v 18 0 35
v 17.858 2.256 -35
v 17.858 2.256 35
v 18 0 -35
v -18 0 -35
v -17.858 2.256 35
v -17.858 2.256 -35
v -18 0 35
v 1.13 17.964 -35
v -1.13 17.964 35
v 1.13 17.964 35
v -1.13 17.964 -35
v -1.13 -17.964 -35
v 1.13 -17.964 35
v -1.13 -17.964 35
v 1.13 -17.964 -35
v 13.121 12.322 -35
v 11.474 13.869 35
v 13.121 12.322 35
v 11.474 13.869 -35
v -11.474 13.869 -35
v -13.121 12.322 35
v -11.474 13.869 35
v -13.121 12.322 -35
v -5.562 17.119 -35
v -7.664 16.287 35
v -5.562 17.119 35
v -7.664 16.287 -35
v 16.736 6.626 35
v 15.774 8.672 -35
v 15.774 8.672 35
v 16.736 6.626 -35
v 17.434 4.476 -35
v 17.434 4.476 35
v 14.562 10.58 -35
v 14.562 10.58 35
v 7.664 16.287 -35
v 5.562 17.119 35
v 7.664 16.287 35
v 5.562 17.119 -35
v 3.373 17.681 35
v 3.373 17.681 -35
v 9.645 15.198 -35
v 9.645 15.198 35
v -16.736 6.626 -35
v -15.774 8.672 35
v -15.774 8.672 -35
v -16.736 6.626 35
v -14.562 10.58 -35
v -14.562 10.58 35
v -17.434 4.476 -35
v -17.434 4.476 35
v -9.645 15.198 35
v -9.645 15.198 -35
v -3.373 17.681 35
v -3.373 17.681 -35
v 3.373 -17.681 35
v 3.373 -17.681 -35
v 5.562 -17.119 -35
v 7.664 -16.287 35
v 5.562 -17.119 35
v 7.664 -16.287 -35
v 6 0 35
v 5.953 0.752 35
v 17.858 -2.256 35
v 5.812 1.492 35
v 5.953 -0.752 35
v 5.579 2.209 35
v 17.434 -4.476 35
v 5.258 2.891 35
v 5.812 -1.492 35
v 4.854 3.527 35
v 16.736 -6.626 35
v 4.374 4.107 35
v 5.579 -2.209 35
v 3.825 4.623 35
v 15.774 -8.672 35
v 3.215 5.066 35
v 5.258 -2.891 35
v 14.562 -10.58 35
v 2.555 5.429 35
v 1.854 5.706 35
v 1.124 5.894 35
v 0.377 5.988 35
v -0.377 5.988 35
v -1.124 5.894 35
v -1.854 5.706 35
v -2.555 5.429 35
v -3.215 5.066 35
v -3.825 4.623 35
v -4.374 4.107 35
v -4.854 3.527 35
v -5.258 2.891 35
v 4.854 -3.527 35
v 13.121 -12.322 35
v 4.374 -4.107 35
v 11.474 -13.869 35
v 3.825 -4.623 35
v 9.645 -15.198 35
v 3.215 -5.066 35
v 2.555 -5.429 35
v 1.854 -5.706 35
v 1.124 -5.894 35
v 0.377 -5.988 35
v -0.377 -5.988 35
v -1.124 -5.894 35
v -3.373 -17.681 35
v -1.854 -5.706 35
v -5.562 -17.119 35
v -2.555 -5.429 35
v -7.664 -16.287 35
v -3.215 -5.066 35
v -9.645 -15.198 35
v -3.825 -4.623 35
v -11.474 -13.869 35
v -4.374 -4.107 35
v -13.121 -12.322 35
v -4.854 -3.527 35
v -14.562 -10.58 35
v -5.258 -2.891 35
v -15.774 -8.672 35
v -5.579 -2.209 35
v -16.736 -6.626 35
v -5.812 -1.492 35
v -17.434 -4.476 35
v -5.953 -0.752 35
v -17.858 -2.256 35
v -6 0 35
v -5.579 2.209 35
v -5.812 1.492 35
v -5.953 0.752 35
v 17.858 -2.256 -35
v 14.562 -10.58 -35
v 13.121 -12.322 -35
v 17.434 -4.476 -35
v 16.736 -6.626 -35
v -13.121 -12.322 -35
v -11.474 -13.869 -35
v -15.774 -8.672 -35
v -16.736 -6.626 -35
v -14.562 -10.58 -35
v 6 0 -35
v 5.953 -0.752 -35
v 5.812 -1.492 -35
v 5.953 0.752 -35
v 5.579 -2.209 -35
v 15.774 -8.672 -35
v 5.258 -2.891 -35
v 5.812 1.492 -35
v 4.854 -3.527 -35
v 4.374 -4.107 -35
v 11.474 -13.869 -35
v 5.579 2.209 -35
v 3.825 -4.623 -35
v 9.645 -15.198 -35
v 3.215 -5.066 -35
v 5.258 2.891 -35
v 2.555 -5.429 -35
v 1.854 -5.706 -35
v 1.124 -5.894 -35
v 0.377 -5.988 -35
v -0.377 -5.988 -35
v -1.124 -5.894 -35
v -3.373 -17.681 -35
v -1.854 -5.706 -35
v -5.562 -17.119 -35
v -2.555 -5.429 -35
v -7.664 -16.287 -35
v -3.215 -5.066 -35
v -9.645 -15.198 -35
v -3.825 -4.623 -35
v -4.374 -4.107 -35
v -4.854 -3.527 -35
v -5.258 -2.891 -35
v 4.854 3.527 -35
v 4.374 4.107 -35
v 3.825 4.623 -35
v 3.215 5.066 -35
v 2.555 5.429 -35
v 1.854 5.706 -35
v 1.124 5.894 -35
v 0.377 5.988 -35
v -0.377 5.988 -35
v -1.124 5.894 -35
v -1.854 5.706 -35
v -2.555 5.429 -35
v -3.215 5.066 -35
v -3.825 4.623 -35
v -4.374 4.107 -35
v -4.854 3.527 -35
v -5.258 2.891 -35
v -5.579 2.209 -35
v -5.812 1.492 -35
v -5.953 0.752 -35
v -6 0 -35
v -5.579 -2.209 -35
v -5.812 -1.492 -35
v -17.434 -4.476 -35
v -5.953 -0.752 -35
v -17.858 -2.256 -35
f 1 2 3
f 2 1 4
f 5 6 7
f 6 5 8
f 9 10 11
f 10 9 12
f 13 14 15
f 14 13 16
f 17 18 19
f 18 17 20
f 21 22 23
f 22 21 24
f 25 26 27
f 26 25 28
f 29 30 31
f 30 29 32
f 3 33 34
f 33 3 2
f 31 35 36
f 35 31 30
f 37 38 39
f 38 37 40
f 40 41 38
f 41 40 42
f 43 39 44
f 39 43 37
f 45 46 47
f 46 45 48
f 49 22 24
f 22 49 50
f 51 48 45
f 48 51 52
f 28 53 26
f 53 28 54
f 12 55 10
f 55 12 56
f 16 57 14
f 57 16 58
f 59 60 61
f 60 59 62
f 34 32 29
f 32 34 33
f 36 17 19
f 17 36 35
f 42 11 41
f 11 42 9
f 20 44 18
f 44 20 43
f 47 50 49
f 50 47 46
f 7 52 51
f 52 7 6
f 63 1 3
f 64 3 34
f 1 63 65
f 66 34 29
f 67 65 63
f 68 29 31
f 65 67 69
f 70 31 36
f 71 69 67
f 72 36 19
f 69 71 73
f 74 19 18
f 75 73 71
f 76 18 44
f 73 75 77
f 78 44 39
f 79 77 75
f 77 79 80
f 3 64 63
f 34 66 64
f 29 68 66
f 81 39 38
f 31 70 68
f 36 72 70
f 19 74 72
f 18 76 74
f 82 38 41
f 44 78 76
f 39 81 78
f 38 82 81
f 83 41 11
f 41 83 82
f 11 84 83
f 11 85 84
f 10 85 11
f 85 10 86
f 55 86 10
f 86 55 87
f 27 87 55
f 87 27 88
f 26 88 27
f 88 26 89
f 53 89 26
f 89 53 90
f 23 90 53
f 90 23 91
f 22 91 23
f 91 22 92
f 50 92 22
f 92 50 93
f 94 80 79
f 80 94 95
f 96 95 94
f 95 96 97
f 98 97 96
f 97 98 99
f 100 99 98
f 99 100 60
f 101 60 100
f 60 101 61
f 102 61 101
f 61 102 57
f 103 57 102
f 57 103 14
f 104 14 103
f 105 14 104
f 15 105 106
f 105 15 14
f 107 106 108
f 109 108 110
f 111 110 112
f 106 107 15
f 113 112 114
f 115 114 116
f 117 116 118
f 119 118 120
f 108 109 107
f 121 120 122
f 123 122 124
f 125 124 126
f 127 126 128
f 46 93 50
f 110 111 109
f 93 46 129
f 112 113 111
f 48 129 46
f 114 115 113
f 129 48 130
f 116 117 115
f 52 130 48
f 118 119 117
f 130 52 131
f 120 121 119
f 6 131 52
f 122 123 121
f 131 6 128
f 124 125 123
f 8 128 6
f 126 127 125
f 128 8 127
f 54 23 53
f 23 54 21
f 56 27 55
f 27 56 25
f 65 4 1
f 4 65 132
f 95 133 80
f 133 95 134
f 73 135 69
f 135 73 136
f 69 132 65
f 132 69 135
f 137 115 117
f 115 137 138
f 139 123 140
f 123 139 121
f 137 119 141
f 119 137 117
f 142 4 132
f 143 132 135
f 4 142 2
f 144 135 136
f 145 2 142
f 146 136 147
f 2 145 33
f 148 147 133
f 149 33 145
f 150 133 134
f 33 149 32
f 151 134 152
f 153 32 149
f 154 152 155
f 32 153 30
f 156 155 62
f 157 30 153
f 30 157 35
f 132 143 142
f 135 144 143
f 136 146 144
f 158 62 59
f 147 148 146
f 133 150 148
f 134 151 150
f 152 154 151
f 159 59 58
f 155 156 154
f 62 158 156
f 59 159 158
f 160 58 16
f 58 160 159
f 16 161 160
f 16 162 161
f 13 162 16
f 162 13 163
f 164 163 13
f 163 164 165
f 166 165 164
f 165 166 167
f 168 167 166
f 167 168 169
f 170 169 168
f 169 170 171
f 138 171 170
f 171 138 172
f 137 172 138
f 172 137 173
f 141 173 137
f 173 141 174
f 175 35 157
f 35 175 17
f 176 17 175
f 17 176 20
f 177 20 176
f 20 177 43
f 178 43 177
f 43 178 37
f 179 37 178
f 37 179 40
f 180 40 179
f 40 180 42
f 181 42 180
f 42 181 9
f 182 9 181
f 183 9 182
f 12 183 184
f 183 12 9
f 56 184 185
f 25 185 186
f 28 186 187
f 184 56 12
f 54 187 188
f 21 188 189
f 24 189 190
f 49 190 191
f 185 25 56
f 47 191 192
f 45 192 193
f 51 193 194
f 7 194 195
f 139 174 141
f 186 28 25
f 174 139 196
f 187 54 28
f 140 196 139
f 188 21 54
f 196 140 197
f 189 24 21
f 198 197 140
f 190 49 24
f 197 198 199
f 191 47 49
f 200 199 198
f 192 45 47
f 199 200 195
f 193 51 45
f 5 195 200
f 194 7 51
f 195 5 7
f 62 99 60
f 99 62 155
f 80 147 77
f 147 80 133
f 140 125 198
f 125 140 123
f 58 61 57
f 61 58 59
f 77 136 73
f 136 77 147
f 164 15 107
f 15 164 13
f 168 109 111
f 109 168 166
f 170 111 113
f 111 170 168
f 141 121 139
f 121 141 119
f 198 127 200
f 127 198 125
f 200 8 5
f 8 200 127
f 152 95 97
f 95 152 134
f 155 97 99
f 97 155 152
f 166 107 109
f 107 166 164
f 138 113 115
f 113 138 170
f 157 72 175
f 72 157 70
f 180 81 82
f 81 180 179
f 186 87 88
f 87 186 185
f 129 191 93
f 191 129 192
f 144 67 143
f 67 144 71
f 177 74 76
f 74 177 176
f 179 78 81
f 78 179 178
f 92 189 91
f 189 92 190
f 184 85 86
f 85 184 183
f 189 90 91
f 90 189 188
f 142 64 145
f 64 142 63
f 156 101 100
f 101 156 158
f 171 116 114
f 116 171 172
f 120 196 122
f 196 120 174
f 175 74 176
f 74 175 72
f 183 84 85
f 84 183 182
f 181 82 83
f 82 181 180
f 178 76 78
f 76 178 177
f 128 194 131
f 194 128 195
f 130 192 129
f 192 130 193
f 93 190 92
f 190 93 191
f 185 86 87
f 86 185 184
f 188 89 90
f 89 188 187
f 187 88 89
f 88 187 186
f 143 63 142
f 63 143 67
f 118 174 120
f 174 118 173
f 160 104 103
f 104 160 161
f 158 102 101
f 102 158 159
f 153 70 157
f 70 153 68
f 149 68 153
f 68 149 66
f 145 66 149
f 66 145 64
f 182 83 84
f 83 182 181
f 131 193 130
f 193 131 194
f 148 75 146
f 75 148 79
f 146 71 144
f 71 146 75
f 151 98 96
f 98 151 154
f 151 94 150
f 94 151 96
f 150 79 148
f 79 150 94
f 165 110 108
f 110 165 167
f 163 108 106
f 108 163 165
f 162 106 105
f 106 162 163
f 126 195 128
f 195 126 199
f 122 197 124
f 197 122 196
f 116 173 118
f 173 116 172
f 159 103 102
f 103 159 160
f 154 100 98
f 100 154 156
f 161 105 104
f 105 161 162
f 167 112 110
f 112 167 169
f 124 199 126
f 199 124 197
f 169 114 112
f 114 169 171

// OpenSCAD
$fn = 50;


difference() {
	union() {
		translate(v = [0, 0, -35.0000000000]) {
			cylinder(h = 70, r = 18.0000000000);
		}
	}
	union() {
		translate(v = [0, 0, -100.0000000000]) {
			cylinder(h = 200, r = 6);
		}
	}
}
